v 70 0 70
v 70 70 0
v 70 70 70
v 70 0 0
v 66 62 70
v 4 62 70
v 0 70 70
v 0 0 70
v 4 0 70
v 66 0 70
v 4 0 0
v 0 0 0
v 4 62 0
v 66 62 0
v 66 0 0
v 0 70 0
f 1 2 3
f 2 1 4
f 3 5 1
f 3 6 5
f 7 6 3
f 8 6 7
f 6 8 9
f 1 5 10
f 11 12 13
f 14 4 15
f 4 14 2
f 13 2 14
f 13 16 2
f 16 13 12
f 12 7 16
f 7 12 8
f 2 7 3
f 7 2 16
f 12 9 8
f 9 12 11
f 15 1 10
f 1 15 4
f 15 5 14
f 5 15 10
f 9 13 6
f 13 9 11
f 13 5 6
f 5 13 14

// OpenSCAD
width = 70;
negative_width = 62;
move_negative = [(width - negative_width) /2, 0, 0];
move_negative2 = [(width - negative_width) /2, 0, negative_width];

difference(){
	cube(width);
	translate(move_negative){
		cube(negative_width);
	}
	translate(move_negative2){
		cube(negative_width);
	}

}
